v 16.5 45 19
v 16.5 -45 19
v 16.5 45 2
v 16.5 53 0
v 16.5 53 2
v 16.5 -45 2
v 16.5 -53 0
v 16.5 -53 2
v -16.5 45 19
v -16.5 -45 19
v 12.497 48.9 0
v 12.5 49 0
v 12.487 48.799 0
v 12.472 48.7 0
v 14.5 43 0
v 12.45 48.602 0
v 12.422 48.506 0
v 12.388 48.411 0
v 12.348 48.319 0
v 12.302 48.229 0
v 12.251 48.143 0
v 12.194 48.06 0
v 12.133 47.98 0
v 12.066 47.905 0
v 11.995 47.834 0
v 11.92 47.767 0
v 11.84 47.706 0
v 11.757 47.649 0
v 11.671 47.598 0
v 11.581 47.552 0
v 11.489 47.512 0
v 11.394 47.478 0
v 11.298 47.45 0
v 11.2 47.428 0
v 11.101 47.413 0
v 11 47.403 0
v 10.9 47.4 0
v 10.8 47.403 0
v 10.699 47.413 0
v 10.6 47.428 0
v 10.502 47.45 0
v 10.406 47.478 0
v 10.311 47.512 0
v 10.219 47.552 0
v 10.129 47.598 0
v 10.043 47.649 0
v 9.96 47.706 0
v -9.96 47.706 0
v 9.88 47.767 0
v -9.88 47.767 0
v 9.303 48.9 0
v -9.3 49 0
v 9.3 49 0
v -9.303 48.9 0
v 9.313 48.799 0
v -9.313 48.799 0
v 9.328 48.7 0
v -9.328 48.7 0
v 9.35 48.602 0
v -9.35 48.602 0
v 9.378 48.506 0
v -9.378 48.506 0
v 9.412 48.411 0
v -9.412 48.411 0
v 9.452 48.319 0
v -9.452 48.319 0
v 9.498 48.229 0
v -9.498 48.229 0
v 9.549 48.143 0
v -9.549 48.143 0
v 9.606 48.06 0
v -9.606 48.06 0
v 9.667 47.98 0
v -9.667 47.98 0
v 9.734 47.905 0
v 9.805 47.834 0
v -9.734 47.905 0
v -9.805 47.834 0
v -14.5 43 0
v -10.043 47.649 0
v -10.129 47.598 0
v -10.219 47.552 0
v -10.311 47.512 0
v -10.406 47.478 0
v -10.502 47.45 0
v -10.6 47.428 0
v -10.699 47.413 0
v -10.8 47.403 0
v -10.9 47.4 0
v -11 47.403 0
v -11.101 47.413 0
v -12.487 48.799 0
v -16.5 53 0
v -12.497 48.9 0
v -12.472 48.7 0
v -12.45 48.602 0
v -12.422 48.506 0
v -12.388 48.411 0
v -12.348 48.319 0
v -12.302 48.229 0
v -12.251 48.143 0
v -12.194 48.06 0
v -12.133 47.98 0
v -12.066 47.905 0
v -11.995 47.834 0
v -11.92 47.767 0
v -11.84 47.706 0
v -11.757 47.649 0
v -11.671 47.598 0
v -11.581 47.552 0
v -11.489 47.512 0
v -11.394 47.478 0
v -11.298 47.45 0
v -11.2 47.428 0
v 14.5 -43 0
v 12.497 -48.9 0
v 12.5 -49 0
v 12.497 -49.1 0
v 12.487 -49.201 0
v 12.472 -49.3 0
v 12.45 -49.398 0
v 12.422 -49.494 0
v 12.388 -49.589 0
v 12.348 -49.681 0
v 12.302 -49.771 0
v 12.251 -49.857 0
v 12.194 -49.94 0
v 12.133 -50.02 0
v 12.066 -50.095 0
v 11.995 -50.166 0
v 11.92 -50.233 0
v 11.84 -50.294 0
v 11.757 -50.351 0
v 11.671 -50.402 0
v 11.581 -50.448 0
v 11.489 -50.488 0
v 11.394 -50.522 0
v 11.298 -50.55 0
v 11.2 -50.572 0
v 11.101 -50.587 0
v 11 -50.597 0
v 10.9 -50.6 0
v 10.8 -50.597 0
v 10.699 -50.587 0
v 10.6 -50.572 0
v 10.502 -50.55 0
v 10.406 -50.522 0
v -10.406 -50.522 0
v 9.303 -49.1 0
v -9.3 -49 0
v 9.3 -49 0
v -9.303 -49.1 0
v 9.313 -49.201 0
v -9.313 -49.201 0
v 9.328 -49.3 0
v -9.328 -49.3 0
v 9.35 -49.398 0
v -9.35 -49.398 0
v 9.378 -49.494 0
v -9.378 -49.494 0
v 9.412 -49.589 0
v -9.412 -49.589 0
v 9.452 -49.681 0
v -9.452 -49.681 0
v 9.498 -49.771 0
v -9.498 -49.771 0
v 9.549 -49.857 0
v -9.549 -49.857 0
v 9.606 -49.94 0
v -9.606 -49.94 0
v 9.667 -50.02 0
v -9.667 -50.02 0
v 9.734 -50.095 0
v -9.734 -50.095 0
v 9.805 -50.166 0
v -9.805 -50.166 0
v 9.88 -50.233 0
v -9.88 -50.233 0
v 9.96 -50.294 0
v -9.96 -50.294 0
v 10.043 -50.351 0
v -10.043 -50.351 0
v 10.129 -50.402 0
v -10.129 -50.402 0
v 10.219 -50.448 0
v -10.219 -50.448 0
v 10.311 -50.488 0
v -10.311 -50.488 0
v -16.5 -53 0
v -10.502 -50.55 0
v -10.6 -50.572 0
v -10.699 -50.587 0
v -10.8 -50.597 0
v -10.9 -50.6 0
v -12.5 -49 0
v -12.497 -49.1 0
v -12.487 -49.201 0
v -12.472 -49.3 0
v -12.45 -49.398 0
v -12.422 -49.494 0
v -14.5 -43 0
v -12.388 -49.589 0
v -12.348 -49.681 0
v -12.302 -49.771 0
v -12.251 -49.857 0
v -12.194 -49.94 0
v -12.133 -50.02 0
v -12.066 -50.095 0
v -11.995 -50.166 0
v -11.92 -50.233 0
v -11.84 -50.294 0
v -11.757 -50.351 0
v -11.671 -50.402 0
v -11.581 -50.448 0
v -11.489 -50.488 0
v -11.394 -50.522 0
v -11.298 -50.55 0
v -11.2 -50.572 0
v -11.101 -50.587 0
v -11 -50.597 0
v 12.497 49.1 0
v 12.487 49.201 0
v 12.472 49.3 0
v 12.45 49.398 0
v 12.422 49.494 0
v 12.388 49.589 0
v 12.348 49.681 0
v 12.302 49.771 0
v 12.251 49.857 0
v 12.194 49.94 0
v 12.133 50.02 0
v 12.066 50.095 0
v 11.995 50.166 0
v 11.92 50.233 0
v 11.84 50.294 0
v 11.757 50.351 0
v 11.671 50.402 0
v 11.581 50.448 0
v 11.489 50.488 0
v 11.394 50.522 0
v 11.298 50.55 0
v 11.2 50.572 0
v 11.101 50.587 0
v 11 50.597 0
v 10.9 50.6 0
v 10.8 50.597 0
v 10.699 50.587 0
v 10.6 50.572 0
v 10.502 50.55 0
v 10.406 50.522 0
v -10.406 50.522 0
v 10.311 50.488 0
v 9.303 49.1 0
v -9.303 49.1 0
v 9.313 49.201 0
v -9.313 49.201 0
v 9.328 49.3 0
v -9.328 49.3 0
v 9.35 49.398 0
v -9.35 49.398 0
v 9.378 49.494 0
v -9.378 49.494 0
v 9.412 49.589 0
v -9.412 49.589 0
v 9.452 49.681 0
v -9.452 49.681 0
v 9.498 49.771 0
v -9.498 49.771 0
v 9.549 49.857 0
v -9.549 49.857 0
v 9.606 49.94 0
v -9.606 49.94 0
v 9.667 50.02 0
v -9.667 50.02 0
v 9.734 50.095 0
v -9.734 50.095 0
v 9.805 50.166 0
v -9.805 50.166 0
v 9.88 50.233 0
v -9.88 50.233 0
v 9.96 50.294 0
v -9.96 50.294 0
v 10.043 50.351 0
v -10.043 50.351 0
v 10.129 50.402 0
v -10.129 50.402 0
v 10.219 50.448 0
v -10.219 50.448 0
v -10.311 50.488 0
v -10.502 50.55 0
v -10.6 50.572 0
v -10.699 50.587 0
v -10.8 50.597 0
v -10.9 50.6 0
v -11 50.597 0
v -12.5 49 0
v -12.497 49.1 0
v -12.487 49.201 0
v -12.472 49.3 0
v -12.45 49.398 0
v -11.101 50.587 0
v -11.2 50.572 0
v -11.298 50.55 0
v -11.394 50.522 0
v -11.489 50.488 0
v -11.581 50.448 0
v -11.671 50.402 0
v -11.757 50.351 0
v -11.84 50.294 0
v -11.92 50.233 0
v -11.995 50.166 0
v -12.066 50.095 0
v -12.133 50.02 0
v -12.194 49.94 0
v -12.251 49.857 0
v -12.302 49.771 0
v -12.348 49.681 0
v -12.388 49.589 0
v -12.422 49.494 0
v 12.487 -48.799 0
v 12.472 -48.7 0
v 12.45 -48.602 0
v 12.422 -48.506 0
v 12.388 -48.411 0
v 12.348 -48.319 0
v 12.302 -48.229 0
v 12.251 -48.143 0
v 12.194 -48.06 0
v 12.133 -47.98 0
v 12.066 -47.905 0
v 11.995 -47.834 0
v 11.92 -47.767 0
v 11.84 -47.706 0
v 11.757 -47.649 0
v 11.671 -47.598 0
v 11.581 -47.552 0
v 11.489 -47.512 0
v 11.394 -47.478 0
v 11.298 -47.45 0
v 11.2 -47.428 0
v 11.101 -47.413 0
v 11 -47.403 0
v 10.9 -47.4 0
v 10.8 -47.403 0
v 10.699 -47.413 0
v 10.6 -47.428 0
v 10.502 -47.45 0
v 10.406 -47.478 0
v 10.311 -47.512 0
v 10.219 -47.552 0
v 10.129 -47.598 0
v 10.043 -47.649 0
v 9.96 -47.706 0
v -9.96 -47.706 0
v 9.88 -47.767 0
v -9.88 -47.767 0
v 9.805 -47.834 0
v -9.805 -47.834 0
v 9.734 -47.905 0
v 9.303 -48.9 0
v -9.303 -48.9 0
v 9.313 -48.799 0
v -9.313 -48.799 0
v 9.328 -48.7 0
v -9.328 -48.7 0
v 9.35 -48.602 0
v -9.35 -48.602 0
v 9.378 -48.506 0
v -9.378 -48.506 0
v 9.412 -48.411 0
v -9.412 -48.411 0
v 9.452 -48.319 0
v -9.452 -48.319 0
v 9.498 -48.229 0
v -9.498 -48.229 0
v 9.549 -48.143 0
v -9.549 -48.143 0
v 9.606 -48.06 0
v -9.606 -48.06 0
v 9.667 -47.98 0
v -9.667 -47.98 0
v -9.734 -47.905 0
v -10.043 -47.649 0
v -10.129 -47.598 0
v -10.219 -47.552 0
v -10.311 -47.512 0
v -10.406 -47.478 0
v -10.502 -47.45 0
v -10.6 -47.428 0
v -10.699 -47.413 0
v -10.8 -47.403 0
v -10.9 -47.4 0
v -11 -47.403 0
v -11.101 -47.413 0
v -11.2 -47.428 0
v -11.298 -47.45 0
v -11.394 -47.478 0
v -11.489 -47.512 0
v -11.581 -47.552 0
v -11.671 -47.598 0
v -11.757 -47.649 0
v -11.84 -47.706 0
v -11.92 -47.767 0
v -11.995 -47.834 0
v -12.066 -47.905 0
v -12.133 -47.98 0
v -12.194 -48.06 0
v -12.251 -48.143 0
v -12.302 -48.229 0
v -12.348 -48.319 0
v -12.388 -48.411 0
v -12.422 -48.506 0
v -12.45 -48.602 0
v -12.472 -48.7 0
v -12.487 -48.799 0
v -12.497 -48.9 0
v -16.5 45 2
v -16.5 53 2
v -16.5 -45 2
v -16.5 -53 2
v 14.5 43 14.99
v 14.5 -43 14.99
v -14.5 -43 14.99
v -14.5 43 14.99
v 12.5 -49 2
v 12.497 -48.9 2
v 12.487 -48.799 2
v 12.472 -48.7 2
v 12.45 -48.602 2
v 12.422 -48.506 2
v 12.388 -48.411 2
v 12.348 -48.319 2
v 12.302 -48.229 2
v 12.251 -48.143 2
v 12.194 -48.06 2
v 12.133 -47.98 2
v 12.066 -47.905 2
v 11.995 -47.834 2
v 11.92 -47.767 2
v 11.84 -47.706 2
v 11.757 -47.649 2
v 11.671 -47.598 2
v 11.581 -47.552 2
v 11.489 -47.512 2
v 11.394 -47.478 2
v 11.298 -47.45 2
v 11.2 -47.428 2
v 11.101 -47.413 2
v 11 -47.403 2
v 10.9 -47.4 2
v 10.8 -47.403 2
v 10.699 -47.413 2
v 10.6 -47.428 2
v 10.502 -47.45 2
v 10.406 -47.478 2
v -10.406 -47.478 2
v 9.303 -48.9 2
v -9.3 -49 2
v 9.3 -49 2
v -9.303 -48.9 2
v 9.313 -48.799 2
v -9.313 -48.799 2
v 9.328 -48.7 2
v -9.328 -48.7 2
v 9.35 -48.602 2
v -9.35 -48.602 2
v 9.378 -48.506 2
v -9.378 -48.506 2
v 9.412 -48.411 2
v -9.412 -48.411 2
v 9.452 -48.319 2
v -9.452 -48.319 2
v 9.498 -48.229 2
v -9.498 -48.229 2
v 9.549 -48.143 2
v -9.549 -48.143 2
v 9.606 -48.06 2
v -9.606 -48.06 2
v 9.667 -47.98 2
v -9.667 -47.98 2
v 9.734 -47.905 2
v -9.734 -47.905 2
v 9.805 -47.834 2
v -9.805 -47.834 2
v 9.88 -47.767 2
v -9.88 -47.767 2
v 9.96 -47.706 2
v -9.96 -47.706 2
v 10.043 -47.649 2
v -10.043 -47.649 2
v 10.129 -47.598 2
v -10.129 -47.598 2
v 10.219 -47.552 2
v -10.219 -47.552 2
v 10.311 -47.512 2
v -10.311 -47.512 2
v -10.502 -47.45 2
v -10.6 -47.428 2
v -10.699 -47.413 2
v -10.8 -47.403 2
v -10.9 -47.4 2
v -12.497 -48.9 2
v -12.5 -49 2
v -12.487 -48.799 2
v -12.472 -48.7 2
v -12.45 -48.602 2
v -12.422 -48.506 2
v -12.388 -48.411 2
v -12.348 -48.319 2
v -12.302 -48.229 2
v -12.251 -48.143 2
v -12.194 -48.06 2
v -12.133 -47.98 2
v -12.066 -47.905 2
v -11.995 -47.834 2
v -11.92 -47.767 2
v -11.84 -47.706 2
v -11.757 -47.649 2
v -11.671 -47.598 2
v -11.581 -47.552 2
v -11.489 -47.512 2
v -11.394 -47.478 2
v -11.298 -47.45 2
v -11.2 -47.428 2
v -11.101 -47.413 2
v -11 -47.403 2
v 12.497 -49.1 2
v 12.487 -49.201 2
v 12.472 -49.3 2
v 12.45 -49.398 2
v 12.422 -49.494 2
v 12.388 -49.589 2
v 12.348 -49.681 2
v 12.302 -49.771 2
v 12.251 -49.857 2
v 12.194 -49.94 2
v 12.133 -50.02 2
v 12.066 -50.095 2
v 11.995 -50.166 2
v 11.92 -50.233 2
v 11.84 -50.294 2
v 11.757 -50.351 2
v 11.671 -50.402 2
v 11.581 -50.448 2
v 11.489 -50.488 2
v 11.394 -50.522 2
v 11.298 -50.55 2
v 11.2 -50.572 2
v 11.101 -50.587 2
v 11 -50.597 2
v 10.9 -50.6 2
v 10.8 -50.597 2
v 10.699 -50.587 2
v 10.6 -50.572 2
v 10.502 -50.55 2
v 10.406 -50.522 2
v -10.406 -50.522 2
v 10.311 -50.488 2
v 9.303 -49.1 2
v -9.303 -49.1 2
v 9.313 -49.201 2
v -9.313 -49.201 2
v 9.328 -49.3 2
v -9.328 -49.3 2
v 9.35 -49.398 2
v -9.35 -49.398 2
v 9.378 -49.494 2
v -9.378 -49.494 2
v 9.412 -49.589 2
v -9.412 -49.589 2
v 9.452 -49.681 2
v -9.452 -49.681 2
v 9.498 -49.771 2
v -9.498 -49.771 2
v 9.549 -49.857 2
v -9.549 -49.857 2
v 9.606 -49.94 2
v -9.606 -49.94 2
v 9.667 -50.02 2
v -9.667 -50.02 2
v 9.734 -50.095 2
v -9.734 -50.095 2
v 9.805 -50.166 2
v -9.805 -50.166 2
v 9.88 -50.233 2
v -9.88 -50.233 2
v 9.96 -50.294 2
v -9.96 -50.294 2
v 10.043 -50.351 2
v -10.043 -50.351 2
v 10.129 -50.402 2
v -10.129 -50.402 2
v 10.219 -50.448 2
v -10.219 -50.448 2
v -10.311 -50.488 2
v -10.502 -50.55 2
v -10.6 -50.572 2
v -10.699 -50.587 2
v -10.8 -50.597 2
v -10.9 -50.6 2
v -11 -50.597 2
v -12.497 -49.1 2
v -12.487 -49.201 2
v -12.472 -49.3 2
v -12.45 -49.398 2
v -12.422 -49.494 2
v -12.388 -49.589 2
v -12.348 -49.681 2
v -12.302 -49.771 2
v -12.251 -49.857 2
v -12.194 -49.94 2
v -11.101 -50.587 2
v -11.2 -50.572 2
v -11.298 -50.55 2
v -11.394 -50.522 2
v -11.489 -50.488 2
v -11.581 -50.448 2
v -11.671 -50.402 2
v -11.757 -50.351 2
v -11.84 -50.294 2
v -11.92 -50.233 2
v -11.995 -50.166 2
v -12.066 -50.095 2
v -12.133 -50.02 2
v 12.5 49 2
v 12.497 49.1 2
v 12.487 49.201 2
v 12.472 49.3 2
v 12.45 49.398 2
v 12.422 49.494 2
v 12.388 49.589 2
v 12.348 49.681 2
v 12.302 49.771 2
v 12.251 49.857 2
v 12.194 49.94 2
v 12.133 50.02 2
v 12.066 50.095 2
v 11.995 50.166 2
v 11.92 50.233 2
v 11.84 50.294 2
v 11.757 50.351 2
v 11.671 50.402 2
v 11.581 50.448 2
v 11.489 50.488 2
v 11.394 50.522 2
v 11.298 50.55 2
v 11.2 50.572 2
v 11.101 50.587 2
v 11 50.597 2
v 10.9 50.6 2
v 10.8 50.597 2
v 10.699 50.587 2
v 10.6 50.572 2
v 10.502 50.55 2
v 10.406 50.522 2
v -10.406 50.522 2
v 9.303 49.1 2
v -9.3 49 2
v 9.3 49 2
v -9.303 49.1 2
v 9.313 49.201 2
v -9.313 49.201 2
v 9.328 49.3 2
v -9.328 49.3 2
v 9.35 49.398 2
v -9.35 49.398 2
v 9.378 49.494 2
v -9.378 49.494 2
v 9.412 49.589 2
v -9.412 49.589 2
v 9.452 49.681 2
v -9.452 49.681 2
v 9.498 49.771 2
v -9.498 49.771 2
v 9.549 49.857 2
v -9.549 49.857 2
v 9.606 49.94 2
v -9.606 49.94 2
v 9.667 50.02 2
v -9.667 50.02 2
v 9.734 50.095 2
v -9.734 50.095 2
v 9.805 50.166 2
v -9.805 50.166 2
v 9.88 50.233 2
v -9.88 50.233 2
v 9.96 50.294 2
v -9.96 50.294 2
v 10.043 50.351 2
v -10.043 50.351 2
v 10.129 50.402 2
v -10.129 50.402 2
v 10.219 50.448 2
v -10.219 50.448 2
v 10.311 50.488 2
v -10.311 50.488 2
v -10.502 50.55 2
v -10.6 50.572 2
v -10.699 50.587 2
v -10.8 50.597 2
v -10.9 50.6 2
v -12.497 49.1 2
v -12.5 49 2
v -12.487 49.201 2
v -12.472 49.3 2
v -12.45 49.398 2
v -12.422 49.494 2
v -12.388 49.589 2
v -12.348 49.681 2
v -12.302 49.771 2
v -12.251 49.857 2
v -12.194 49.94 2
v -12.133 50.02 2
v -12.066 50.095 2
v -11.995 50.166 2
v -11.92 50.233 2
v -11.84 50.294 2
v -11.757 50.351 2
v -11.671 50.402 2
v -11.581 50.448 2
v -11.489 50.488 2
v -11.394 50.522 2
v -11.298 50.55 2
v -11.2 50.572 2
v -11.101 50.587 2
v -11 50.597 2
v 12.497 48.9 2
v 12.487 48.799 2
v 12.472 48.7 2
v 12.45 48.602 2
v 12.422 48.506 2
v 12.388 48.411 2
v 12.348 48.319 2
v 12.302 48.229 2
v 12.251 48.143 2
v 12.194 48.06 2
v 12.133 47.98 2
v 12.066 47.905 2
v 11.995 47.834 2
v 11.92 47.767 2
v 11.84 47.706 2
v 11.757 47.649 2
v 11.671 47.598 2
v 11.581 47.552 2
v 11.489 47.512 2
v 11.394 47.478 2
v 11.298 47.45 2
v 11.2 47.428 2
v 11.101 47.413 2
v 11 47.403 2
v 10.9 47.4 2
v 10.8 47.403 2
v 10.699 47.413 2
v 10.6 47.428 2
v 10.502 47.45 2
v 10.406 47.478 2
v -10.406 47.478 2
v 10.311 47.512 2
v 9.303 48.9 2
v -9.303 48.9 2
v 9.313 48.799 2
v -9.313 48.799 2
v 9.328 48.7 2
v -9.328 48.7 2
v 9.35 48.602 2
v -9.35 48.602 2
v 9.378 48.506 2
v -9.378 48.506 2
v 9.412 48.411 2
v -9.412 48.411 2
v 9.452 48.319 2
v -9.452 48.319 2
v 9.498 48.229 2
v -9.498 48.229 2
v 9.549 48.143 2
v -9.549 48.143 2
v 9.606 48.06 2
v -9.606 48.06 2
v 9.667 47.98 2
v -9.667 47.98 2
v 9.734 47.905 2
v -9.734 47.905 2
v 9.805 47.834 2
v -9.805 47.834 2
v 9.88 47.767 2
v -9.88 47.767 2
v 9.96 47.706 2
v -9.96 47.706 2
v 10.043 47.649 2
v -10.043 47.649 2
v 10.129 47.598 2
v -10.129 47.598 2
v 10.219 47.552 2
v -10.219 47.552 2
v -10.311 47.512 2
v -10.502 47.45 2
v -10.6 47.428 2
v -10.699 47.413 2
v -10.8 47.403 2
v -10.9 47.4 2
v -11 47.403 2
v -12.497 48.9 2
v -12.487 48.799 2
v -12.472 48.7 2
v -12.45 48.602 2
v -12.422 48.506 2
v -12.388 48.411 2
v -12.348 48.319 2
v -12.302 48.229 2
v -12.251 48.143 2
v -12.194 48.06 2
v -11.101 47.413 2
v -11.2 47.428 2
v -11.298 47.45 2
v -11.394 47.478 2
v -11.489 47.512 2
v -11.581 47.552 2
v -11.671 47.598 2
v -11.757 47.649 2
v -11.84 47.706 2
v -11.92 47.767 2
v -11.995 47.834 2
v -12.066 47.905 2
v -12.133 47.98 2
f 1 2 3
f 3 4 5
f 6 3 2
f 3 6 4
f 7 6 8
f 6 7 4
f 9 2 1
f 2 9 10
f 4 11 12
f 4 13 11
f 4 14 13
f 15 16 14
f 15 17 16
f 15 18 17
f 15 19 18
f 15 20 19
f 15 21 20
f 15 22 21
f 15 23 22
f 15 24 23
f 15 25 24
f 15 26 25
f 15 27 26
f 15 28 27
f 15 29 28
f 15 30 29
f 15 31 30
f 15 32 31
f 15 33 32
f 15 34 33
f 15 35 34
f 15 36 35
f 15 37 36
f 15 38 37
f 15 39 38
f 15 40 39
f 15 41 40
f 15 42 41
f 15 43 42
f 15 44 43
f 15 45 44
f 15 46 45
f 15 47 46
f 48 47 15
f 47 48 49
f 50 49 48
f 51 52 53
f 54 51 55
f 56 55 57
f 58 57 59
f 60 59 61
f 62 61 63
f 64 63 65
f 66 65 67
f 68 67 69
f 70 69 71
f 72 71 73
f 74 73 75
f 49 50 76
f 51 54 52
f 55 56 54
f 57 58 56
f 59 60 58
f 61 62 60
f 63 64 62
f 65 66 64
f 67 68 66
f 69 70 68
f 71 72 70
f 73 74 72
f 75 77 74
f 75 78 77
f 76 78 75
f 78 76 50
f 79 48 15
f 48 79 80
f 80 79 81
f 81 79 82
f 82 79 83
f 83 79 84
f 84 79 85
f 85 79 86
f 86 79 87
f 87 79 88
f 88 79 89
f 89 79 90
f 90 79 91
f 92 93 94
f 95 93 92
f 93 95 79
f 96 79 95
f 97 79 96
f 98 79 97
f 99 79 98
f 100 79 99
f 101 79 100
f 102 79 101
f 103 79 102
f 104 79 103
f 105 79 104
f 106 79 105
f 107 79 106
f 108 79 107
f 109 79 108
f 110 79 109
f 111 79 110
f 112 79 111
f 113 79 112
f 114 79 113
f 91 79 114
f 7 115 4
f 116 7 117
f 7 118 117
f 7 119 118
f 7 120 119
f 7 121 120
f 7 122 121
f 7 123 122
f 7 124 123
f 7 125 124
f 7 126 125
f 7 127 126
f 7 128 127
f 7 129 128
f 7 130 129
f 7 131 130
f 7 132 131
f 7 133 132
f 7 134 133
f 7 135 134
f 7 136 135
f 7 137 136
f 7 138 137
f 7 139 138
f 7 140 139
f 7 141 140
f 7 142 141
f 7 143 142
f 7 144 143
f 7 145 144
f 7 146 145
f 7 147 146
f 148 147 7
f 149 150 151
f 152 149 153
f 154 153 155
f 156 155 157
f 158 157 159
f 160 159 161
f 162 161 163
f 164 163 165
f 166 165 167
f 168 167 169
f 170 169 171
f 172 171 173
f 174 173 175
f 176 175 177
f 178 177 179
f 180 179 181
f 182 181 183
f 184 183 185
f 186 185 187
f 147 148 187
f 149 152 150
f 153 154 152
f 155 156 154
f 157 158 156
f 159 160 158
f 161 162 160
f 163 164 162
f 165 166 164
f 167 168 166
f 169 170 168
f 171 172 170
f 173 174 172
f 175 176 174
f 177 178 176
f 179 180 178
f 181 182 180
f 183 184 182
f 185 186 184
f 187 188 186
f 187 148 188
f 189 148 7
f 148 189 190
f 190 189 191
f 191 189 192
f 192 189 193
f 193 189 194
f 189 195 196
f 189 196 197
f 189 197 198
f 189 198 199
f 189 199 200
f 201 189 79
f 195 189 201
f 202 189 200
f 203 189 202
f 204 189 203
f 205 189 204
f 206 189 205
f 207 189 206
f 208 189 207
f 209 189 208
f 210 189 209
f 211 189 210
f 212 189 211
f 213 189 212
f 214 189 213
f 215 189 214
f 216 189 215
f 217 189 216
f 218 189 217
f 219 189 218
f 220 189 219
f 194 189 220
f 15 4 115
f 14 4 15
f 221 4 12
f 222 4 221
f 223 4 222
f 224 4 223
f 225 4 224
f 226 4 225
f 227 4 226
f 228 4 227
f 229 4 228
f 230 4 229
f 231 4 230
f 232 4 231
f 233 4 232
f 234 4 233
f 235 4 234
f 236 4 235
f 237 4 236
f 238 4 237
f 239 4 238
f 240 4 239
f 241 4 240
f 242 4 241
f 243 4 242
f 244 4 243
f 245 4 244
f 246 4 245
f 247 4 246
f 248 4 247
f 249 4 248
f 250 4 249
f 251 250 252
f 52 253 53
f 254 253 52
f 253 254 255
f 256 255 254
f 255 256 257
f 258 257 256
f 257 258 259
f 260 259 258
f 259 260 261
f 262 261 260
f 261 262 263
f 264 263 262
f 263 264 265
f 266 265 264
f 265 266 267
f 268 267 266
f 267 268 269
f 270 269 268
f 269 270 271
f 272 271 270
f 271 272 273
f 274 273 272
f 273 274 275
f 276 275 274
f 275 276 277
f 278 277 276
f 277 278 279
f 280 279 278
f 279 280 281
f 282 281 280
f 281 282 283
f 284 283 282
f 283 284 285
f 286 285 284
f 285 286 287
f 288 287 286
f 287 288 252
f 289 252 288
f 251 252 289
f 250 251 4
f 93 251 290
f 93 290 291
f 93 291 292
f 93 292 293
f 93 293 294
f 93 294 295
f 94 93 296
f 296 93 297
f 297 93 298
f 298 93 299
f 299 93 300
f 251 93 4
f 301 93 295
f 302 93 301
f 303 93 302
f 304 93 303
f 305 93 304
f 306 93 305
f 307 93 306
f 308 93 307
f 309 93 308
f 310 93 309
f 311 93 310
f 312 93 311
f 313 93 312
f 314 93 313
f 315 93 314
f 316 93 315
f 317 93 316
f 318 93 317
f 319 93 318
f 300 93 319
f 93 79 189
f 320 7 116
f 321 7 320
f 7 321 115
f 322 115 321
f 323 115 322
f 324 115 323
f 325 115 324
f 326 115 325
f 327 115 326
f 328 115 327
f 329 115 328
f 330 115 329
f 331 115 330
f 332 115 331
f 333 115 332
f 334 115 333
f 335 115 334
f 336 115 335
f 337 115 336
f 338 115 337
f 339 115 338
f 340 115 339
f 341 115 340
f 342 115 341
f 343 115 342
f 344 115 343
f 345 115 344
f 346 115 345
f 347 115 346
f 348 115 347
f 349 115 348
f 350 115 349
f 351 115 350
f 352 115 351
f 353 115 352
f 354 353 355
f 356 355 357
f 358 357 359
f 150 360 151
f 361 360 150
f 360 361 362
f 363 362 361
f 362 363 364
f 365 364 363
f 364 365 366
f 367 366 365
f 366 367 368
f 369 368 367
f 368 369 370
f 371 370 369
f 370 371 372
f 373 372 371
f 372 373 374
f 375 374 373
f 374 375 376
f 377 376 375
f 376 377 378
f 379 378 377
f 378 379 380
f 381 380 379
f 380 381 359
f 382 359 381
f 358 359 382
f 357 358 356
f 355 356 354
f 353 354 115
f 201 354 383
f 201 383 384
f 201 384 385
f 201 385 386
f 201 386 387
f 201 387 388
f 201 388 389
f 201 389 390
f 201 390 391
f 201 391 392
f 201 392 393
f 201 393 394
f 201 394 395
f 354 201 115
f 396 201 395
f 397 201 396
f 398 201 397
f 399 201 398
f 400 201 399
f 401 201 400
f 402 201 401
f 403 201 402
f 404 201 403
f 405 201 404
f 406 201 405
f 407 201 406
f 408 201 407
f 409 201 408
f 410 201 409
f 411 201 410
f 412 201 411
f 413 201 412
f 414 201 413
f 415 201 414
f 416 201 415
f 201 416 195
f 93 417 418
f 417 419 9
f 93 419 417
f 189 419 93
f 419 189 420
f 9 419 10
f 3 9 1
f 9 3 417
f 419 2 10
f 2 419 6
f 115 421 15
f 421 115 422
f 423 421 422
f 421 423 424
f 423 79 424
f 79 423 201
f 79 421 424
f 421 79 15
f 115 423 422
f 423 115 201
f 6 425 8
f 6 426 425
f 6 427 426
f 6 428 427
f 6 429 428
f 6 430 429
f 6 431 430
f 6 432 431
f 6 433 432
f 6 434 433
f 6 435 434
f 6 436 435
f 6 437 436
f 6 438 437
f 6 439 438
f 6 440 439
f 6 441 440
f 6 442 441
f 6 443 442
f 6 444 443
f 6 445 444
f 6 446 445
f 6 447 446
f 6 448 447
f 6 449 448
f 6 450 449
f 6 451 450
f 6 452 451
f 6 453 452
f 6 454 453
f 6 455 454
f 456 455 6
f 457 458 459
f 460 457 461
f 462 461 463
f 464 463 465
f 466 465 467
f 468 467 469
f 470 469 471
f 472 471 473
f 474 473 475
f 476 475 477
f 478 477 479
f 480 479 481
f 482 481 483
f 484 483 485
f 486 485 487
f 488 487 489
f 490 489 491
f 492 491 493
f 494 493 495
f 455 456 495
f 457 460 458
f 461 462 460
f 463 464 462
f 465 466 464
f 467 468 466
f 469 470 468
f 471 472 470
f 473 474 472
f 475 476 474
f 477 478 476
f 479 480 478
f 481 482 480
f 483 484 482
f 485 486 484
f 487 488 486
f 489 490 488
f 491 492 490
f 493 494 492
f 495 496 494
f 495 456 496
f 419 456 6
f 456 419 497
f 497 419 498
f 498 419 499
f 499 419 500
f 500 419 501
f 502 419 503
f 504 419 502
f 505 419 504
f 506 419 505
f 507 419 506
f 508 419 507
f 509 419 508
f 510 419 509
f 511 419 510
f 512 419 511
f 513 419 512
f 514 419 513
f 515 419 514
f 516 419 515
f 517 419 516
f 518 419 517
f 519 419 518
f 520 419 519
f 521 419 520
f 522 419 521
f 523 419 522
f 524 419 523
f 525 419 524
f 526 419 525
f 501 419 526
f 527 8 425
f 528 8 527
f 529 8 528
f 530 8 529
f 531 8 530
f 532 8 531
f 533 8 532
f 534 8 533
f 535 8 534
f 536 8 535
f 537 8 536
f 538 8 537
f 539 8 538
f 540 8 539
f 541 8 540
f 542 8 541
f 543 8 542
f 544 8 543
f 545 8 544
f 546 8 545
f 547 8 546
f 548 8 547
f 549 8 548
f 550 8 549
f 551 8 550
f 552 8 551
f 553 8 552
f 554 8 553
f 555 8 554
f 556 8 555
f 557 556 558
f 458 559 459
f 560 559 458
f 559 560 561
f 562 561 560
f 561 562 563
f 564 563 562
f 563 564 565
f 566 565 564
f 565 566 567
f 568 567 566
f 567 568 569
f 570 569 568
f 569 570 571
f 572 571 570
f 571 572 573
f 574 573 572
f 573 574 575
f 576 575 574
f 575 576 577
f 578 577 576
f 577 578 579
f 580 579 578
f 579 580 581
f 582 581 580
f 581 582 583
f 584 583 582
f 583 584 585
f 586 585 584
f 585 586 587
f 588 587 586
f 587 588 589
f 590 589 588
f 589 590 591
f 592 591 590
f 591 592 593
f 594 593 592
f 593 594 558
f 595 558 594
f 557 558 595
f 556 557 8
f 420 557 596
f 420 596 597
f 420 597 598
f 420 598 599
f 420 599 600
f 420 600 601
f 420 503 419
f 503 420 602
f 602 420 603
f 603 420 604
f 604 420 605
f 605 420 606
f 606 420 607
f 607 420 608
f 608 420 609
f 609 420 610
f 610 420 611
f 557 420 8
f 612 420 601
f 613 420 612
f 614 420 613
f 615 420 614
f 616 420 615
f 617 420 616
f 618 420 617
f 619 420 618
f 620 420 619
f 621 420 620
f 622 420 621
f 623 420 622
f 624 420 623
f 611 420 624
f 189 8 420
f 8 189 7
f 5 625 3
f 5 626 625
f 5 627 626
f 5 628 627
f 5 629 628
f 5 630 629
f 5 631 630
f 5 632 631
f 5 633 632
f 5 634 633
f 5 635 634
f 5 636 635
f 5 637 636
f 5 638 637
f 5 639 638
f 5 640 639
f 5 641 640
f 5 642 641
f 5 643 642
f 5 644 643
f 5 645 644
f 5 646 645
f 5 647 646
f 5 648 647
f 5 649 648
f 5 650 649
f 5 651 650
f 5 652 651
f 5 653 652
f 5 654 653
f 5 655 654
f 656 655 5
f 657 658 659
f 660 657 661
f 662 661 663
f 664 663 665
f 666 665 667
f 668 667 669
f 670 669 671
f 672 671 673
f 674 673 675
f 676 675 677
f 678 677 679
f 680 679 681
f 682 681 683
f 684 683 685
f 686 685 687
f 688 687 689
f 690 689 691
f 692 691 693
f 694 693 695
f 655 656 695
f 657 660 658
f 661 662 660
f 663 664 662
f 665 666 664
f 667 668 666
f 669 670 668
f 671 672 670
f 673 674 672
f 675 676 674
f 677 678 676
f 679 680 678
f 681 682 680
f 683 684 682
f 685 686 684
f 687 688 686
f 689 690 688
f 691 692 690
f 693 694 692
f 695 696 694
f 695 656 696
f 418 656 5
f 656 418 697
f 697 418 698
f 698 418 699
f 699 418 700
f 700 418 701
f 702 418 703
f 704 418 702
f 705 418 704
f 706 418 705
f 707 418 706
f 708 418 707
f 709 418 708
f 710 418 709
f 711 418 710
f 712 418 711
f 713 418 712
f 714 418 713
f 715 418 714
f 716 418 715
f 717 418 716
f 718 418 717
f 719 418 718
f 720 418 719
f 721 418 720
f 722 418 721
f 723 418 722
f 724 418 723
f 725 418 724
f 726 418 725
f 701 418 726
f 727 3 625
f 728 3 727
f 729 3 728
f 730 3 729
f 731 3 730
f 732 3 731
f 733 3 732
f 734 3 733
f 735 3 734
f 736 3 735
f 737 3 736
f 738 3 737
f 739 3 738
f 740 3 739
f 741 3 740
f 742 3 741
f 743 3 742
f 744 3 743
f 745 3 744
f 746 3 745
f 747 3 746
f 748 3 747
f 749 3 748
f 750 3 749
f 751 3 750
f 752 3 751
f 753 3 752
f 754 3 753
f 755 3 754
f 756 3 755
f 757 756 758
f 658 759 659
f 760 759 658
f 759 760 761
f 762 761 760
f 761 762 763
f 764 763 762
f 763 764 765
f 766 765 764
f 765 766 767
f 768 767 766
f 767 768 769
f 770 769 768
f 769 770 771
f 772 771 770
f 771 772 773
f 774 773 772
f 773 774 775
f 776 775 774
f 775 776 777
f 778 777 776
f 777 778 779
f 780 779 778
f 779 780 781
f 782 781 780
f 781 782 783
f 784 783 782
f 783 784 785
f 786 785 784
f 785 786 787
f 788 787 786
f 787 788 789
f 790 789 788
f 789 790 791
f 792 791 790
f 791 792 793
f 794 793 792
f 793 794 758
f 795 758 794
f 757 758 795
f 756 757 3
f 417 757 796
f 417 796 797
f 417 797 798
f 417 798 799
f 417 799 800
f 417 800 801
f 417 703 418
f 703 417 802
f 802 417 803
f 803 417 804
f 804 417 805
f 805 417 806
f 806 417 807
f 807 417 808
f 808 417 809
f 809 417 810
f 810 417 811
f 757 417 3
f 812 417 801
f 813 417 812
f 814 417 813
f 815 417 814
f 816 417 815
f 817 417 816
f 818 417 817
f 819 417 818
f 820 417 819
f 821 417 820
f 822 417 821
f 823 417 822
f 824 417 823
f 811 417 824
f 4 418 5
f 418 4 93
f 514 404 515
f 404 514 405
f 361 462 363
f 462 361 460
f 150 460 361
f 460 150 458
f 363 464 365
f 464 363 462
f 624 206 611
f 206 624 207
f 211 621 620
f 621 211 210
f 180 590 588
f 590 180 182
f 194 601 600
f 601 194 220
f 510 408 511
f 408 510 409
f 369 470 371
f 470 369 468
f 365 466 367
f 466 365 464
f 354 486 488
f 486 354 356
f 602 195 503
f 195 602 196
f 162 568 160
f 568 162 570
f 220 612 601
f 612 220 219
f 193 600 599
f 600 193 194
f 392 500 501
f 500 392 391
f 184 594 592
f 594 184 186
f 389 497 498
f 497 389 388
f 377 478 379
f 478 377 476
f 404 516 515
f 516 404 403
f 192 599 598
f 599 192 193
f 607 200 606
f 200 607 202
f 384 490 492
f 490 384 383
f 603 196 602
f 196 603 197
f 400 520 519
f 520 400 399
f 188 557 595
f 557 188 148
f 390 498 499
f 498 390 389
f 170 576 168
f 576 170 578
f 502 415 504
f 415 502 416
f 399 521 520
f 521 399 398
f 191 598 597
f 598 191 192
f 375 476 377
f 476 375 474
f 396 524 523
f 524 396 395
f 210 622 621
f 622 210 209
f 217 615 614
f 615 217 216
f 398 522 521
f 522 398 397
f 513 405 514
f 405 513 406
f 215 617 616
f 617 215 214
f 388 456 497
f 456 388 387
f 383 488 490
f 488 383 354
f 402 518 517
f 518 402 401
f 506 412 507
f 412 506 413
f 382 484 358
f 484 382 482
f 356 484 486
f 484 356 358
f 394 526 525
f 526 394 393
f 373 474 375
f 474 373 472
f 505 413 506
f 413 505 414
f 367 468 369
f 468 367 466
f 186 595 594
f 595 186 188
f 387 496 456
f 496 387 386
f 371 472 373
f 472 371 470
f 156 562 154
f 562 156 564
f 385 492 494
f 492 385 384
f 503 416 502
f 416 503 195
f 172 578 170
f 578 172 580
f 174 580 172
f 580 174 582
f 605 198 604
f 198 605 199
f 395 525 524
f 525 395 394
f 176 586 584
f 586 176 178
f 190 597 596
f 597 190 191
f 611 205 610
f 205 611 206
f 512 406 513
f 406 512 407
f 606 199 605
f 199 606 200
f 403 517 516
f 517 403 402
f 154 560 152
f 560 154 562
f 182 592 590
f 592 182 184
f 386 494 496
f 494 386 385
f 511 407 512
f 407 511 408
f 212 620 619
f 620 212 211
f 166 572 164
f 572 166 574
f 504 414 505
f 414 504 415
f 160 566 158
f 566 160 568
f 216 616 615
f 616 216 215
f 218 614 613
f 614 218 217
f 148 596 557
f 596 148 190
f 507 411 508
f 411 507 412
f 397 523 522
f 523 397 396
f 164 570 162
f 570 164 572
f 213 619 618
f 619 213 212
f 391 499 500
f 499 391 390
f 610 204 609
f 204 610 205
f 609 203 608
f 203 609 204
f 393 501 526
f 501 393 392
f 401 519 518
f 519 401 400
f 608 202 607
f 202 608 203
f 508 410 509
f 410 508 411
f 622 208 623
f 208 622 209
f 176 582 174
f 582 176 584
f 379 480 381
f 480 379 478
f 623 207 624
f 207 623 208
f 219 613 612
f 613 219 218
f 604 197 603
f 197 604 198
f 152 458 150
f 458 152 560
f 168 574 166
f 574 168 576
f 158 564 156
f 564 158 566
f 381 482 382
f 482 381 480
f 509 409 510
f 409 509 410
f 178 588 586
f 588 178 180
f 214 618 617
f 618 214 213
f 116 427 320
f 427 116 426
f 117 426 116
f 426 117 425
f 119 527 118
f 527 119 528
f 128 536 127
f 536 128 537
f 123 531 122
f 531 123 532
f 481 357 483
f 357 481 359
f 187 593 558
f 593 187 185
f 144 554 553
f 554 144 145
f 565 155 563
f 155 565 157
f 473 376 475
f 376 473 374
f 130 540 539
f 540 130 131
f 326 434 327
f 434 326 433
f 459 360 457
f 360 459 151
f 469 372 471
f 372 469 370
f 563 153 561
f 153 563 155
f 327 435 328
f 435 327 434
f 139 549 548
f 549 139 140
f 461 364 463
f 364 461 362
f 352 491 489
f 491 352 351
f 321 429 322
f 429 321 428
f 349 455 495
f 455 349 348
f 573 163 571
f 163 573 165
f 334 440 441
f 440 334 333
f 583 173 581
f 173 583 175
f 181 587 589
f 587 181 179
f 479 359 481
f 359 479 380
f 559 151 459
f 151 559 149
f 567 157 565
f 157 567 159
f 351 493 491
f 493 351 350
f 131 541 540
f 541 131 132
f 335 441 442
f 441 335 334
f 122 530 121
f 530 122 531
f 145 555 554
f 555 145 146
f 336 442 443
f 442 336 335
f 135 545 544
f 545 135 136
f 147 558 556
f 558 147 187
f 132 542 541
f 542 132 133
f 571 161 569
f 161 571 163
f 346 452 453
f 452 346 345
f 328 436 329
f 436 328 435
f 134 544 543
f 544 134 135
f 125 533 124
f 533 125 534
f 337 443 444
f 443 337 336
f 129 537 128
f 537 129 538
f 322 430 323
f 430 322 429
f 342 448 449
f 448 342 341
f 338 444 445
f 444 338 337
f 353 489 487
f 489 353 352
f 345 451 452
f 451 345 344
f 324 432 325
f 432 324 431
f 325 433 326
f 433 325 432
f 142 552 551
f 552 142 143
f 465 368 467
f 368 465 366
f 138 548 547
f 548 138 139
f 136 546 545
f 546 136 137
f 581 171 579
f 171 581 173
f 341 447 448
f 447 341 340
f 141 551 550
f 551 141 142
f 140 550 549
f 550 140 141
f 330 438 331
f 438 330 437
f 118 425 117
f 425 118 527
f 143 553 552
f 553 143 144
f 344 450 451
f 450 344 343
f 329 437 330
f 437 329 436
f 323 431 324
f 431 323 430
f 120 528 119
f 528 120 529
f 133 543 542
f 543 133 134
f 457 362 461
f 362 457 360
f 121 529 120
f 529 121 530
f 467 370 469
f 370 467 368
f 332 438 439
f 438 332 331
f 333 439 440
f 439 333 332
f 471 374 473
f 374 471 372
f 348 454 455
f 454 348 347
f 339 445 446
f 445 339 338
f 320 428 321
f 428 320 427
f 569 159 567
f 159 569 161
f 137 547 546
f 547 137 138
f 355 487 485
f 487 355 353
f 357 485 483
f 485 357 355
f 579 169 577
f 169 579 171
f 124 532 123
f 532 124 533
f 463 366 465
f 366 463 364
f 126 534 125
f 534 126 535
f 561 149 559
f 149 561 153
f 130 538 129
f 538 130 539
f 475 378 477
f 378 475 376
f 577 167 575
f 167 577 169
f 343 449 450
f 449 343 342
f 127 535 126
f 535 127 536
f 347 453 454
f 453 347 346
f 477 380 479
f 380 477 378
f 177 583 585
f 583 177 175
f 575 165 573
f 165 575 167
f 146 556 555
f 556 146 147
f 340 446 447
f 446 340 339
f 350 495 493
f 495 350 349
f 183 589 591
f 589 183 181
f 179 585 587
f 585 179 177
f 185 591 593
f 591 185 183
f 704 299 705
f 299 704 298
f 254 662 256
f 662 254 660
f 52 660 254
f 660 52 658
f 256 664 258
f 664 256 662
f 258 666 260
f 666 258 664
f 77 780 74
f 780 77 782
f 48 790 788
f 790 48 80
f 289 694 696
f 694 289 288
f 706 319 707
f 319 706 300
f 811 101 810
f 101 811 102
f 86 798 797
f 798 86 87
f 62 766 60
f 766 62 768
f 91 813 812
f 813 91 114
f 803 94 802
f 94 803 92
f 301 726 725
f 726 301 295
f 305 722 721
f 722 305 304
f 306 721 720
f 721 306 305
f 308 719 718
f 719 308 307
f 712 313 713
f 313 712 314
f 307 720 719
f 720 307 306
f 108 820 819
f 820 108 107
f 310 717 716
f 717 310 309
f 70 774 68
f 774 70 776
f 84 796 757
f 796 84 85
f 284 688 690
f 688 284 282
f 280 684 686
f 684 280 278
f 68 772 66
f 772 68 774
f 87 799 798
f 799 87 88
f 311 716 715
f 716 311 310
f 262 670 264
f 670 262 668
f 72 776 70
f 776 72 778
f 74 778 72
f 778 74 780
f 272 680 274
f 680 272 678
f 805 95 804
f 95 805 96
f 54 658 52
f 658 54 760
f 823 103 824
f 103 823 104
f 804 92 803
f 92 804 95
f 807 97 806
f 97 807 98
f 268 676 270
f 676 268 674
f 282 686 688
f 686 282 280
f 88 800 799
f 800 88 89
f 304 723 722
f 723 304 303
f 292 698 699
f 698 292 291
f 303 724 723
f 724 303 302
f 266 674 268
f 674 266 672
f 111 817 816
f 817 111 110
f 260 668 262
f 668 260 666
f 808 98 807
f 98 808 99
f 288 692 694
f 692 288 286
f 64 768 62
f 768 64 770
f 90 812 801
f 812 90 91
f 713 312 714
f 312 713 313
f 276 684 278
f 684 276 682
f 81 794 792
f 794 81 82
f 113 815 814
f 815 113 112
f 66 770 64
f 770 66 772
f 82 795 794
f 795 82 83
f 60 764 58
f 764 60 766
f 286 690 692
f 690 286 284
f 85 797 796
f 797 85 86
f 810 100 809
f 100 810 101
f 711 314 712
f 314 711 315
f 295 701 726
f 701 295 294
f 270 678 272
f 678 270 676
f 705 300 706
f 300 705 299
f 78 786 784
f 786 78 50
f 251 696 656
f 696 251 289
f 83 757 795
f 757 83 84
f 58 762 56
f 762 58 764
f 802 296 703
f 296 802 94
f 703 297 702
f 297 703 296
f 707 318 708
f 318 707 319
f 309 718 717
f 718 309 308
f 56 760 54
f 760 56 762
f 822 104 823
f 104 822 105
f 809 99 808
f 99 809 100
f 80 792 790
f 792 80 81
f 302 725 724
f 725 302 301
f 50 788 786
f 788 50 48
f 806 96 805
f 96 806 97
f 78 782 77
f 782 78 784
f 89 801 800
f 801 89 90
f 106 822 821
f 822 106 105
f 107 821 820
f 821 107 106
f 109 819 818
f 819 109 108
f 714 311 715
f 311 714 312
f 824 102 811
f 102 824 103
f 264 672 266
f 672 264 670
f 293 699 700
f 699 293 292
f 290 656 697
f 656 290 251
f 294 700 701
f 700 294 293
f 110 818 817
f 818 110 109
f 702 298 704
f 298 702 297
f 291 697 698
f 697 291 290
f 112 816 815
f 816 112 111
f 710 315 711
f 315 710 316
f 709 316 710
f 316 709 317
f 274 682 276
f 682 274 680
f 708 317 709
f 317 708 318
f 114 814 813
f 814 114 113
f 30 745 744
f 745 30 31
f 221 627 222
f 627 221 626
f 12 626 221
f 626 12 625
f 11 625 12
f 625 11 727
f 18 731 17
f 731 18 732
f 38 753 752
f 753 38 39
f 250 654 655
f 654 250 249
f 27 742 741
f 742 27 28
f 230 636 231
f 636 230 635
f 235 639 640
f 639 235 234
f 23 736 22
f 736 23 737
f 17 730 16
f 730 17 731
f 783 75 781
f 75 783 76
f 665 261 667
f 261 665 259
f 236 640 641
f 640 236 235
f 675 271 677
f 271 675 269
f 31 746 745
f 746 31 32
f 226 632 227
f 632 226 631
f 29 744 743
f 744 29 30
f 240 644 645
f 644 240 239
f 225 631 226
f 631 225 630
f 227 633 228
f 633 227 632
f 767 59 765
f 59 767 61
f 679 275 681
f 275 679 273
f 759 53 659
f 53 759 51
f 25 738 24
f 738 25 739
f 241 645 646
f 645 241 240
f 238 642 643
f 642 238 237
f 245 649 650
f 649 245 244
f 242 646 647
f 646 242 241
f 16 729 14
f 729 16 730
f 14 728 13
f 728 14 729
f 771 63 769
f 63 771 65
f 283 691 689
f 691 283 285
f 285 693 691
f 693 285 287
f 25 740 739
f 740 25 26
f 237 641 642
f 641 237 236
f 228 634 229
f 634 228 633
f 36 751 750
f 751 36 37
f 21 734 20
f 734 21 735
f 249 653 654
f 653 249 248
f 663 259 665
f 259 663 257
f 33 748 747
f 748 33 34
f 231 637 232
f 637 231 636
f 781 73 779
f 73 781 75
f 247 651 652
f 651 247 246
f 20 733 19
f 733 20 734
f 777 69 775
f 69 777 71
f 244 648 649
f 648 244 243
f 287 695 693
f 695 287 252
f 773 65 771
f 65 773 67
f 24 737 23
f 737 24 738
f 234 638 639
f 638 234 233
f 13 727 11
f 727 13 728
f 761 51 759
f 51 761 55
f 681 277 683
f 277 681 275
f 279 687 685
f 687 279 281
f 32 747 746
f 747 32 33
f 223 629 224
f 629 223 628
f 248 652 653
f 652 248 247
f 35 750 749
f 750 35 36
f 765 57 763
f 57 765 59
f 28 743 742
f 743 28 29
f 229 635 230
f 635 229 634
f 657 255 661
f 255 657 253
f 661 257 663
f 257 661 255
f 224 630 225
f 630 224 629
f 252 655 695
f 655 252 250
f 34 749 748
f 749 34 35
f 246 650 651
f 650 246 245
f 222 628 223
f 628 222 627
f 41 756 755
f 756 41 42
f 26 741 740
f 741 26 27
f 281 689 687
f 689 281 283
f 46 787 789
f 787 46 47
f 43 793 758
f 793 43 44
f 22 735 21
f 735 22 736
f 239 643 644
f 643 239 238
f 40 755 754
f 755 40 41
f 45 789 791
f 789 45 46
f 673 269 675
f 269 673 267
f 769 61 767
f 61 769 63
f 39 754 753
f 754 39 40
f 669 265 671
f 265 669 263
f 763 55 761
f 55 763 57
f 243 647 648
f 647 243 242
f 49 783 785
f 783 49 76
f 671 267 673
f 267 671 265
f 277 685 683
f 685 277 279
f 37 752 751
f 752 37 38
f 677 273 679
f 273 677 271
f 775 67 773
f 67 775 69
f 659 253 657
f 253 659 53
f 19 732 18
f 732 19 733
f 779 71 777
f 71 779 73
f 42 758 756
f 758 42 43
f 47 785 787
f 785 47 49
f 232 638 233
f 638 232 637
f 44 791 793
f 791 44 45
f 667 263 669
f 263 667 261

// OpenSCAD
/* [Options] */
draw_panel_extrusions = false;

/* [Hidden] */
$fn=100;

interior_width = 29.0;
interior_length = 86.0;
interior_height = 15.0;

wall_thickness = 2.0;

exterior_width = interior_width + 2 * wall_thickness;
exterior_length = interior_length + 2 * wall_thickness;
exterior_height = interior_height + 2 * wall_thickness;


tab_length = 8;

screw_hole_diameter = 3.2;
screw_hole_edge_offset = 4.0;

module main_box() {
	difference() {
		cube([exterior_width, exterior_length, exterior_height]);

		translate([wall_thickness, wall_thickness, -0.01])
		cube([interior_width, interior_length, interior_height]);
	}

	// top tab
	translate([0, -tab_length, 0])
	{
		cube([exterior_width, tab_length, wall_thickness]);
	}

	// bottom tab
	translate([0, interior_length + wall_thickness*2, 0])
	{
		cube([exterior_width, tab_length, wall_thickness]);	
	}
}

module screw_holes(extruded=false) {
	// top left
	translate([screw_hole_diameter/2 + screw_hole_edge_offset, -tab_length/2, 0])
	color("red")
	cylinder(h=10, d=screw_hole_diameter, center=true);

	// top right
	translate([exterior_width - screw_hole_diameter/2 - screw_hole_edge_offset, -tab_length/2, 0])
	color("red")
	cylinder(h=10, d=screw_hole_diameter, center=true);	

	// bottom left
	translate([screw_hole_diameter/2 + screw_hole_edge_offset, exterior_length + tab_length/2, 0])
	color("red")
	cylinder(h=10, d=screw_hole_diameter, center=true);

	// bottom right
	translate([exterior_width - screw_hole_diameter/2 - screw_hole_edge_offset, exterior_length + tab_length/2, 0])
	color("red")
	cylinder(h=10, d=screw_hole_diameter, center=true);		
}

translate([-exterior_width/2, -exterior_length/2, 0])
{
	if (draw_panel_extrusions) {
		screw_holes();		
	} else {
		difference() 
		{
			main_box();
			screw_holes();
		}		
	}
}
